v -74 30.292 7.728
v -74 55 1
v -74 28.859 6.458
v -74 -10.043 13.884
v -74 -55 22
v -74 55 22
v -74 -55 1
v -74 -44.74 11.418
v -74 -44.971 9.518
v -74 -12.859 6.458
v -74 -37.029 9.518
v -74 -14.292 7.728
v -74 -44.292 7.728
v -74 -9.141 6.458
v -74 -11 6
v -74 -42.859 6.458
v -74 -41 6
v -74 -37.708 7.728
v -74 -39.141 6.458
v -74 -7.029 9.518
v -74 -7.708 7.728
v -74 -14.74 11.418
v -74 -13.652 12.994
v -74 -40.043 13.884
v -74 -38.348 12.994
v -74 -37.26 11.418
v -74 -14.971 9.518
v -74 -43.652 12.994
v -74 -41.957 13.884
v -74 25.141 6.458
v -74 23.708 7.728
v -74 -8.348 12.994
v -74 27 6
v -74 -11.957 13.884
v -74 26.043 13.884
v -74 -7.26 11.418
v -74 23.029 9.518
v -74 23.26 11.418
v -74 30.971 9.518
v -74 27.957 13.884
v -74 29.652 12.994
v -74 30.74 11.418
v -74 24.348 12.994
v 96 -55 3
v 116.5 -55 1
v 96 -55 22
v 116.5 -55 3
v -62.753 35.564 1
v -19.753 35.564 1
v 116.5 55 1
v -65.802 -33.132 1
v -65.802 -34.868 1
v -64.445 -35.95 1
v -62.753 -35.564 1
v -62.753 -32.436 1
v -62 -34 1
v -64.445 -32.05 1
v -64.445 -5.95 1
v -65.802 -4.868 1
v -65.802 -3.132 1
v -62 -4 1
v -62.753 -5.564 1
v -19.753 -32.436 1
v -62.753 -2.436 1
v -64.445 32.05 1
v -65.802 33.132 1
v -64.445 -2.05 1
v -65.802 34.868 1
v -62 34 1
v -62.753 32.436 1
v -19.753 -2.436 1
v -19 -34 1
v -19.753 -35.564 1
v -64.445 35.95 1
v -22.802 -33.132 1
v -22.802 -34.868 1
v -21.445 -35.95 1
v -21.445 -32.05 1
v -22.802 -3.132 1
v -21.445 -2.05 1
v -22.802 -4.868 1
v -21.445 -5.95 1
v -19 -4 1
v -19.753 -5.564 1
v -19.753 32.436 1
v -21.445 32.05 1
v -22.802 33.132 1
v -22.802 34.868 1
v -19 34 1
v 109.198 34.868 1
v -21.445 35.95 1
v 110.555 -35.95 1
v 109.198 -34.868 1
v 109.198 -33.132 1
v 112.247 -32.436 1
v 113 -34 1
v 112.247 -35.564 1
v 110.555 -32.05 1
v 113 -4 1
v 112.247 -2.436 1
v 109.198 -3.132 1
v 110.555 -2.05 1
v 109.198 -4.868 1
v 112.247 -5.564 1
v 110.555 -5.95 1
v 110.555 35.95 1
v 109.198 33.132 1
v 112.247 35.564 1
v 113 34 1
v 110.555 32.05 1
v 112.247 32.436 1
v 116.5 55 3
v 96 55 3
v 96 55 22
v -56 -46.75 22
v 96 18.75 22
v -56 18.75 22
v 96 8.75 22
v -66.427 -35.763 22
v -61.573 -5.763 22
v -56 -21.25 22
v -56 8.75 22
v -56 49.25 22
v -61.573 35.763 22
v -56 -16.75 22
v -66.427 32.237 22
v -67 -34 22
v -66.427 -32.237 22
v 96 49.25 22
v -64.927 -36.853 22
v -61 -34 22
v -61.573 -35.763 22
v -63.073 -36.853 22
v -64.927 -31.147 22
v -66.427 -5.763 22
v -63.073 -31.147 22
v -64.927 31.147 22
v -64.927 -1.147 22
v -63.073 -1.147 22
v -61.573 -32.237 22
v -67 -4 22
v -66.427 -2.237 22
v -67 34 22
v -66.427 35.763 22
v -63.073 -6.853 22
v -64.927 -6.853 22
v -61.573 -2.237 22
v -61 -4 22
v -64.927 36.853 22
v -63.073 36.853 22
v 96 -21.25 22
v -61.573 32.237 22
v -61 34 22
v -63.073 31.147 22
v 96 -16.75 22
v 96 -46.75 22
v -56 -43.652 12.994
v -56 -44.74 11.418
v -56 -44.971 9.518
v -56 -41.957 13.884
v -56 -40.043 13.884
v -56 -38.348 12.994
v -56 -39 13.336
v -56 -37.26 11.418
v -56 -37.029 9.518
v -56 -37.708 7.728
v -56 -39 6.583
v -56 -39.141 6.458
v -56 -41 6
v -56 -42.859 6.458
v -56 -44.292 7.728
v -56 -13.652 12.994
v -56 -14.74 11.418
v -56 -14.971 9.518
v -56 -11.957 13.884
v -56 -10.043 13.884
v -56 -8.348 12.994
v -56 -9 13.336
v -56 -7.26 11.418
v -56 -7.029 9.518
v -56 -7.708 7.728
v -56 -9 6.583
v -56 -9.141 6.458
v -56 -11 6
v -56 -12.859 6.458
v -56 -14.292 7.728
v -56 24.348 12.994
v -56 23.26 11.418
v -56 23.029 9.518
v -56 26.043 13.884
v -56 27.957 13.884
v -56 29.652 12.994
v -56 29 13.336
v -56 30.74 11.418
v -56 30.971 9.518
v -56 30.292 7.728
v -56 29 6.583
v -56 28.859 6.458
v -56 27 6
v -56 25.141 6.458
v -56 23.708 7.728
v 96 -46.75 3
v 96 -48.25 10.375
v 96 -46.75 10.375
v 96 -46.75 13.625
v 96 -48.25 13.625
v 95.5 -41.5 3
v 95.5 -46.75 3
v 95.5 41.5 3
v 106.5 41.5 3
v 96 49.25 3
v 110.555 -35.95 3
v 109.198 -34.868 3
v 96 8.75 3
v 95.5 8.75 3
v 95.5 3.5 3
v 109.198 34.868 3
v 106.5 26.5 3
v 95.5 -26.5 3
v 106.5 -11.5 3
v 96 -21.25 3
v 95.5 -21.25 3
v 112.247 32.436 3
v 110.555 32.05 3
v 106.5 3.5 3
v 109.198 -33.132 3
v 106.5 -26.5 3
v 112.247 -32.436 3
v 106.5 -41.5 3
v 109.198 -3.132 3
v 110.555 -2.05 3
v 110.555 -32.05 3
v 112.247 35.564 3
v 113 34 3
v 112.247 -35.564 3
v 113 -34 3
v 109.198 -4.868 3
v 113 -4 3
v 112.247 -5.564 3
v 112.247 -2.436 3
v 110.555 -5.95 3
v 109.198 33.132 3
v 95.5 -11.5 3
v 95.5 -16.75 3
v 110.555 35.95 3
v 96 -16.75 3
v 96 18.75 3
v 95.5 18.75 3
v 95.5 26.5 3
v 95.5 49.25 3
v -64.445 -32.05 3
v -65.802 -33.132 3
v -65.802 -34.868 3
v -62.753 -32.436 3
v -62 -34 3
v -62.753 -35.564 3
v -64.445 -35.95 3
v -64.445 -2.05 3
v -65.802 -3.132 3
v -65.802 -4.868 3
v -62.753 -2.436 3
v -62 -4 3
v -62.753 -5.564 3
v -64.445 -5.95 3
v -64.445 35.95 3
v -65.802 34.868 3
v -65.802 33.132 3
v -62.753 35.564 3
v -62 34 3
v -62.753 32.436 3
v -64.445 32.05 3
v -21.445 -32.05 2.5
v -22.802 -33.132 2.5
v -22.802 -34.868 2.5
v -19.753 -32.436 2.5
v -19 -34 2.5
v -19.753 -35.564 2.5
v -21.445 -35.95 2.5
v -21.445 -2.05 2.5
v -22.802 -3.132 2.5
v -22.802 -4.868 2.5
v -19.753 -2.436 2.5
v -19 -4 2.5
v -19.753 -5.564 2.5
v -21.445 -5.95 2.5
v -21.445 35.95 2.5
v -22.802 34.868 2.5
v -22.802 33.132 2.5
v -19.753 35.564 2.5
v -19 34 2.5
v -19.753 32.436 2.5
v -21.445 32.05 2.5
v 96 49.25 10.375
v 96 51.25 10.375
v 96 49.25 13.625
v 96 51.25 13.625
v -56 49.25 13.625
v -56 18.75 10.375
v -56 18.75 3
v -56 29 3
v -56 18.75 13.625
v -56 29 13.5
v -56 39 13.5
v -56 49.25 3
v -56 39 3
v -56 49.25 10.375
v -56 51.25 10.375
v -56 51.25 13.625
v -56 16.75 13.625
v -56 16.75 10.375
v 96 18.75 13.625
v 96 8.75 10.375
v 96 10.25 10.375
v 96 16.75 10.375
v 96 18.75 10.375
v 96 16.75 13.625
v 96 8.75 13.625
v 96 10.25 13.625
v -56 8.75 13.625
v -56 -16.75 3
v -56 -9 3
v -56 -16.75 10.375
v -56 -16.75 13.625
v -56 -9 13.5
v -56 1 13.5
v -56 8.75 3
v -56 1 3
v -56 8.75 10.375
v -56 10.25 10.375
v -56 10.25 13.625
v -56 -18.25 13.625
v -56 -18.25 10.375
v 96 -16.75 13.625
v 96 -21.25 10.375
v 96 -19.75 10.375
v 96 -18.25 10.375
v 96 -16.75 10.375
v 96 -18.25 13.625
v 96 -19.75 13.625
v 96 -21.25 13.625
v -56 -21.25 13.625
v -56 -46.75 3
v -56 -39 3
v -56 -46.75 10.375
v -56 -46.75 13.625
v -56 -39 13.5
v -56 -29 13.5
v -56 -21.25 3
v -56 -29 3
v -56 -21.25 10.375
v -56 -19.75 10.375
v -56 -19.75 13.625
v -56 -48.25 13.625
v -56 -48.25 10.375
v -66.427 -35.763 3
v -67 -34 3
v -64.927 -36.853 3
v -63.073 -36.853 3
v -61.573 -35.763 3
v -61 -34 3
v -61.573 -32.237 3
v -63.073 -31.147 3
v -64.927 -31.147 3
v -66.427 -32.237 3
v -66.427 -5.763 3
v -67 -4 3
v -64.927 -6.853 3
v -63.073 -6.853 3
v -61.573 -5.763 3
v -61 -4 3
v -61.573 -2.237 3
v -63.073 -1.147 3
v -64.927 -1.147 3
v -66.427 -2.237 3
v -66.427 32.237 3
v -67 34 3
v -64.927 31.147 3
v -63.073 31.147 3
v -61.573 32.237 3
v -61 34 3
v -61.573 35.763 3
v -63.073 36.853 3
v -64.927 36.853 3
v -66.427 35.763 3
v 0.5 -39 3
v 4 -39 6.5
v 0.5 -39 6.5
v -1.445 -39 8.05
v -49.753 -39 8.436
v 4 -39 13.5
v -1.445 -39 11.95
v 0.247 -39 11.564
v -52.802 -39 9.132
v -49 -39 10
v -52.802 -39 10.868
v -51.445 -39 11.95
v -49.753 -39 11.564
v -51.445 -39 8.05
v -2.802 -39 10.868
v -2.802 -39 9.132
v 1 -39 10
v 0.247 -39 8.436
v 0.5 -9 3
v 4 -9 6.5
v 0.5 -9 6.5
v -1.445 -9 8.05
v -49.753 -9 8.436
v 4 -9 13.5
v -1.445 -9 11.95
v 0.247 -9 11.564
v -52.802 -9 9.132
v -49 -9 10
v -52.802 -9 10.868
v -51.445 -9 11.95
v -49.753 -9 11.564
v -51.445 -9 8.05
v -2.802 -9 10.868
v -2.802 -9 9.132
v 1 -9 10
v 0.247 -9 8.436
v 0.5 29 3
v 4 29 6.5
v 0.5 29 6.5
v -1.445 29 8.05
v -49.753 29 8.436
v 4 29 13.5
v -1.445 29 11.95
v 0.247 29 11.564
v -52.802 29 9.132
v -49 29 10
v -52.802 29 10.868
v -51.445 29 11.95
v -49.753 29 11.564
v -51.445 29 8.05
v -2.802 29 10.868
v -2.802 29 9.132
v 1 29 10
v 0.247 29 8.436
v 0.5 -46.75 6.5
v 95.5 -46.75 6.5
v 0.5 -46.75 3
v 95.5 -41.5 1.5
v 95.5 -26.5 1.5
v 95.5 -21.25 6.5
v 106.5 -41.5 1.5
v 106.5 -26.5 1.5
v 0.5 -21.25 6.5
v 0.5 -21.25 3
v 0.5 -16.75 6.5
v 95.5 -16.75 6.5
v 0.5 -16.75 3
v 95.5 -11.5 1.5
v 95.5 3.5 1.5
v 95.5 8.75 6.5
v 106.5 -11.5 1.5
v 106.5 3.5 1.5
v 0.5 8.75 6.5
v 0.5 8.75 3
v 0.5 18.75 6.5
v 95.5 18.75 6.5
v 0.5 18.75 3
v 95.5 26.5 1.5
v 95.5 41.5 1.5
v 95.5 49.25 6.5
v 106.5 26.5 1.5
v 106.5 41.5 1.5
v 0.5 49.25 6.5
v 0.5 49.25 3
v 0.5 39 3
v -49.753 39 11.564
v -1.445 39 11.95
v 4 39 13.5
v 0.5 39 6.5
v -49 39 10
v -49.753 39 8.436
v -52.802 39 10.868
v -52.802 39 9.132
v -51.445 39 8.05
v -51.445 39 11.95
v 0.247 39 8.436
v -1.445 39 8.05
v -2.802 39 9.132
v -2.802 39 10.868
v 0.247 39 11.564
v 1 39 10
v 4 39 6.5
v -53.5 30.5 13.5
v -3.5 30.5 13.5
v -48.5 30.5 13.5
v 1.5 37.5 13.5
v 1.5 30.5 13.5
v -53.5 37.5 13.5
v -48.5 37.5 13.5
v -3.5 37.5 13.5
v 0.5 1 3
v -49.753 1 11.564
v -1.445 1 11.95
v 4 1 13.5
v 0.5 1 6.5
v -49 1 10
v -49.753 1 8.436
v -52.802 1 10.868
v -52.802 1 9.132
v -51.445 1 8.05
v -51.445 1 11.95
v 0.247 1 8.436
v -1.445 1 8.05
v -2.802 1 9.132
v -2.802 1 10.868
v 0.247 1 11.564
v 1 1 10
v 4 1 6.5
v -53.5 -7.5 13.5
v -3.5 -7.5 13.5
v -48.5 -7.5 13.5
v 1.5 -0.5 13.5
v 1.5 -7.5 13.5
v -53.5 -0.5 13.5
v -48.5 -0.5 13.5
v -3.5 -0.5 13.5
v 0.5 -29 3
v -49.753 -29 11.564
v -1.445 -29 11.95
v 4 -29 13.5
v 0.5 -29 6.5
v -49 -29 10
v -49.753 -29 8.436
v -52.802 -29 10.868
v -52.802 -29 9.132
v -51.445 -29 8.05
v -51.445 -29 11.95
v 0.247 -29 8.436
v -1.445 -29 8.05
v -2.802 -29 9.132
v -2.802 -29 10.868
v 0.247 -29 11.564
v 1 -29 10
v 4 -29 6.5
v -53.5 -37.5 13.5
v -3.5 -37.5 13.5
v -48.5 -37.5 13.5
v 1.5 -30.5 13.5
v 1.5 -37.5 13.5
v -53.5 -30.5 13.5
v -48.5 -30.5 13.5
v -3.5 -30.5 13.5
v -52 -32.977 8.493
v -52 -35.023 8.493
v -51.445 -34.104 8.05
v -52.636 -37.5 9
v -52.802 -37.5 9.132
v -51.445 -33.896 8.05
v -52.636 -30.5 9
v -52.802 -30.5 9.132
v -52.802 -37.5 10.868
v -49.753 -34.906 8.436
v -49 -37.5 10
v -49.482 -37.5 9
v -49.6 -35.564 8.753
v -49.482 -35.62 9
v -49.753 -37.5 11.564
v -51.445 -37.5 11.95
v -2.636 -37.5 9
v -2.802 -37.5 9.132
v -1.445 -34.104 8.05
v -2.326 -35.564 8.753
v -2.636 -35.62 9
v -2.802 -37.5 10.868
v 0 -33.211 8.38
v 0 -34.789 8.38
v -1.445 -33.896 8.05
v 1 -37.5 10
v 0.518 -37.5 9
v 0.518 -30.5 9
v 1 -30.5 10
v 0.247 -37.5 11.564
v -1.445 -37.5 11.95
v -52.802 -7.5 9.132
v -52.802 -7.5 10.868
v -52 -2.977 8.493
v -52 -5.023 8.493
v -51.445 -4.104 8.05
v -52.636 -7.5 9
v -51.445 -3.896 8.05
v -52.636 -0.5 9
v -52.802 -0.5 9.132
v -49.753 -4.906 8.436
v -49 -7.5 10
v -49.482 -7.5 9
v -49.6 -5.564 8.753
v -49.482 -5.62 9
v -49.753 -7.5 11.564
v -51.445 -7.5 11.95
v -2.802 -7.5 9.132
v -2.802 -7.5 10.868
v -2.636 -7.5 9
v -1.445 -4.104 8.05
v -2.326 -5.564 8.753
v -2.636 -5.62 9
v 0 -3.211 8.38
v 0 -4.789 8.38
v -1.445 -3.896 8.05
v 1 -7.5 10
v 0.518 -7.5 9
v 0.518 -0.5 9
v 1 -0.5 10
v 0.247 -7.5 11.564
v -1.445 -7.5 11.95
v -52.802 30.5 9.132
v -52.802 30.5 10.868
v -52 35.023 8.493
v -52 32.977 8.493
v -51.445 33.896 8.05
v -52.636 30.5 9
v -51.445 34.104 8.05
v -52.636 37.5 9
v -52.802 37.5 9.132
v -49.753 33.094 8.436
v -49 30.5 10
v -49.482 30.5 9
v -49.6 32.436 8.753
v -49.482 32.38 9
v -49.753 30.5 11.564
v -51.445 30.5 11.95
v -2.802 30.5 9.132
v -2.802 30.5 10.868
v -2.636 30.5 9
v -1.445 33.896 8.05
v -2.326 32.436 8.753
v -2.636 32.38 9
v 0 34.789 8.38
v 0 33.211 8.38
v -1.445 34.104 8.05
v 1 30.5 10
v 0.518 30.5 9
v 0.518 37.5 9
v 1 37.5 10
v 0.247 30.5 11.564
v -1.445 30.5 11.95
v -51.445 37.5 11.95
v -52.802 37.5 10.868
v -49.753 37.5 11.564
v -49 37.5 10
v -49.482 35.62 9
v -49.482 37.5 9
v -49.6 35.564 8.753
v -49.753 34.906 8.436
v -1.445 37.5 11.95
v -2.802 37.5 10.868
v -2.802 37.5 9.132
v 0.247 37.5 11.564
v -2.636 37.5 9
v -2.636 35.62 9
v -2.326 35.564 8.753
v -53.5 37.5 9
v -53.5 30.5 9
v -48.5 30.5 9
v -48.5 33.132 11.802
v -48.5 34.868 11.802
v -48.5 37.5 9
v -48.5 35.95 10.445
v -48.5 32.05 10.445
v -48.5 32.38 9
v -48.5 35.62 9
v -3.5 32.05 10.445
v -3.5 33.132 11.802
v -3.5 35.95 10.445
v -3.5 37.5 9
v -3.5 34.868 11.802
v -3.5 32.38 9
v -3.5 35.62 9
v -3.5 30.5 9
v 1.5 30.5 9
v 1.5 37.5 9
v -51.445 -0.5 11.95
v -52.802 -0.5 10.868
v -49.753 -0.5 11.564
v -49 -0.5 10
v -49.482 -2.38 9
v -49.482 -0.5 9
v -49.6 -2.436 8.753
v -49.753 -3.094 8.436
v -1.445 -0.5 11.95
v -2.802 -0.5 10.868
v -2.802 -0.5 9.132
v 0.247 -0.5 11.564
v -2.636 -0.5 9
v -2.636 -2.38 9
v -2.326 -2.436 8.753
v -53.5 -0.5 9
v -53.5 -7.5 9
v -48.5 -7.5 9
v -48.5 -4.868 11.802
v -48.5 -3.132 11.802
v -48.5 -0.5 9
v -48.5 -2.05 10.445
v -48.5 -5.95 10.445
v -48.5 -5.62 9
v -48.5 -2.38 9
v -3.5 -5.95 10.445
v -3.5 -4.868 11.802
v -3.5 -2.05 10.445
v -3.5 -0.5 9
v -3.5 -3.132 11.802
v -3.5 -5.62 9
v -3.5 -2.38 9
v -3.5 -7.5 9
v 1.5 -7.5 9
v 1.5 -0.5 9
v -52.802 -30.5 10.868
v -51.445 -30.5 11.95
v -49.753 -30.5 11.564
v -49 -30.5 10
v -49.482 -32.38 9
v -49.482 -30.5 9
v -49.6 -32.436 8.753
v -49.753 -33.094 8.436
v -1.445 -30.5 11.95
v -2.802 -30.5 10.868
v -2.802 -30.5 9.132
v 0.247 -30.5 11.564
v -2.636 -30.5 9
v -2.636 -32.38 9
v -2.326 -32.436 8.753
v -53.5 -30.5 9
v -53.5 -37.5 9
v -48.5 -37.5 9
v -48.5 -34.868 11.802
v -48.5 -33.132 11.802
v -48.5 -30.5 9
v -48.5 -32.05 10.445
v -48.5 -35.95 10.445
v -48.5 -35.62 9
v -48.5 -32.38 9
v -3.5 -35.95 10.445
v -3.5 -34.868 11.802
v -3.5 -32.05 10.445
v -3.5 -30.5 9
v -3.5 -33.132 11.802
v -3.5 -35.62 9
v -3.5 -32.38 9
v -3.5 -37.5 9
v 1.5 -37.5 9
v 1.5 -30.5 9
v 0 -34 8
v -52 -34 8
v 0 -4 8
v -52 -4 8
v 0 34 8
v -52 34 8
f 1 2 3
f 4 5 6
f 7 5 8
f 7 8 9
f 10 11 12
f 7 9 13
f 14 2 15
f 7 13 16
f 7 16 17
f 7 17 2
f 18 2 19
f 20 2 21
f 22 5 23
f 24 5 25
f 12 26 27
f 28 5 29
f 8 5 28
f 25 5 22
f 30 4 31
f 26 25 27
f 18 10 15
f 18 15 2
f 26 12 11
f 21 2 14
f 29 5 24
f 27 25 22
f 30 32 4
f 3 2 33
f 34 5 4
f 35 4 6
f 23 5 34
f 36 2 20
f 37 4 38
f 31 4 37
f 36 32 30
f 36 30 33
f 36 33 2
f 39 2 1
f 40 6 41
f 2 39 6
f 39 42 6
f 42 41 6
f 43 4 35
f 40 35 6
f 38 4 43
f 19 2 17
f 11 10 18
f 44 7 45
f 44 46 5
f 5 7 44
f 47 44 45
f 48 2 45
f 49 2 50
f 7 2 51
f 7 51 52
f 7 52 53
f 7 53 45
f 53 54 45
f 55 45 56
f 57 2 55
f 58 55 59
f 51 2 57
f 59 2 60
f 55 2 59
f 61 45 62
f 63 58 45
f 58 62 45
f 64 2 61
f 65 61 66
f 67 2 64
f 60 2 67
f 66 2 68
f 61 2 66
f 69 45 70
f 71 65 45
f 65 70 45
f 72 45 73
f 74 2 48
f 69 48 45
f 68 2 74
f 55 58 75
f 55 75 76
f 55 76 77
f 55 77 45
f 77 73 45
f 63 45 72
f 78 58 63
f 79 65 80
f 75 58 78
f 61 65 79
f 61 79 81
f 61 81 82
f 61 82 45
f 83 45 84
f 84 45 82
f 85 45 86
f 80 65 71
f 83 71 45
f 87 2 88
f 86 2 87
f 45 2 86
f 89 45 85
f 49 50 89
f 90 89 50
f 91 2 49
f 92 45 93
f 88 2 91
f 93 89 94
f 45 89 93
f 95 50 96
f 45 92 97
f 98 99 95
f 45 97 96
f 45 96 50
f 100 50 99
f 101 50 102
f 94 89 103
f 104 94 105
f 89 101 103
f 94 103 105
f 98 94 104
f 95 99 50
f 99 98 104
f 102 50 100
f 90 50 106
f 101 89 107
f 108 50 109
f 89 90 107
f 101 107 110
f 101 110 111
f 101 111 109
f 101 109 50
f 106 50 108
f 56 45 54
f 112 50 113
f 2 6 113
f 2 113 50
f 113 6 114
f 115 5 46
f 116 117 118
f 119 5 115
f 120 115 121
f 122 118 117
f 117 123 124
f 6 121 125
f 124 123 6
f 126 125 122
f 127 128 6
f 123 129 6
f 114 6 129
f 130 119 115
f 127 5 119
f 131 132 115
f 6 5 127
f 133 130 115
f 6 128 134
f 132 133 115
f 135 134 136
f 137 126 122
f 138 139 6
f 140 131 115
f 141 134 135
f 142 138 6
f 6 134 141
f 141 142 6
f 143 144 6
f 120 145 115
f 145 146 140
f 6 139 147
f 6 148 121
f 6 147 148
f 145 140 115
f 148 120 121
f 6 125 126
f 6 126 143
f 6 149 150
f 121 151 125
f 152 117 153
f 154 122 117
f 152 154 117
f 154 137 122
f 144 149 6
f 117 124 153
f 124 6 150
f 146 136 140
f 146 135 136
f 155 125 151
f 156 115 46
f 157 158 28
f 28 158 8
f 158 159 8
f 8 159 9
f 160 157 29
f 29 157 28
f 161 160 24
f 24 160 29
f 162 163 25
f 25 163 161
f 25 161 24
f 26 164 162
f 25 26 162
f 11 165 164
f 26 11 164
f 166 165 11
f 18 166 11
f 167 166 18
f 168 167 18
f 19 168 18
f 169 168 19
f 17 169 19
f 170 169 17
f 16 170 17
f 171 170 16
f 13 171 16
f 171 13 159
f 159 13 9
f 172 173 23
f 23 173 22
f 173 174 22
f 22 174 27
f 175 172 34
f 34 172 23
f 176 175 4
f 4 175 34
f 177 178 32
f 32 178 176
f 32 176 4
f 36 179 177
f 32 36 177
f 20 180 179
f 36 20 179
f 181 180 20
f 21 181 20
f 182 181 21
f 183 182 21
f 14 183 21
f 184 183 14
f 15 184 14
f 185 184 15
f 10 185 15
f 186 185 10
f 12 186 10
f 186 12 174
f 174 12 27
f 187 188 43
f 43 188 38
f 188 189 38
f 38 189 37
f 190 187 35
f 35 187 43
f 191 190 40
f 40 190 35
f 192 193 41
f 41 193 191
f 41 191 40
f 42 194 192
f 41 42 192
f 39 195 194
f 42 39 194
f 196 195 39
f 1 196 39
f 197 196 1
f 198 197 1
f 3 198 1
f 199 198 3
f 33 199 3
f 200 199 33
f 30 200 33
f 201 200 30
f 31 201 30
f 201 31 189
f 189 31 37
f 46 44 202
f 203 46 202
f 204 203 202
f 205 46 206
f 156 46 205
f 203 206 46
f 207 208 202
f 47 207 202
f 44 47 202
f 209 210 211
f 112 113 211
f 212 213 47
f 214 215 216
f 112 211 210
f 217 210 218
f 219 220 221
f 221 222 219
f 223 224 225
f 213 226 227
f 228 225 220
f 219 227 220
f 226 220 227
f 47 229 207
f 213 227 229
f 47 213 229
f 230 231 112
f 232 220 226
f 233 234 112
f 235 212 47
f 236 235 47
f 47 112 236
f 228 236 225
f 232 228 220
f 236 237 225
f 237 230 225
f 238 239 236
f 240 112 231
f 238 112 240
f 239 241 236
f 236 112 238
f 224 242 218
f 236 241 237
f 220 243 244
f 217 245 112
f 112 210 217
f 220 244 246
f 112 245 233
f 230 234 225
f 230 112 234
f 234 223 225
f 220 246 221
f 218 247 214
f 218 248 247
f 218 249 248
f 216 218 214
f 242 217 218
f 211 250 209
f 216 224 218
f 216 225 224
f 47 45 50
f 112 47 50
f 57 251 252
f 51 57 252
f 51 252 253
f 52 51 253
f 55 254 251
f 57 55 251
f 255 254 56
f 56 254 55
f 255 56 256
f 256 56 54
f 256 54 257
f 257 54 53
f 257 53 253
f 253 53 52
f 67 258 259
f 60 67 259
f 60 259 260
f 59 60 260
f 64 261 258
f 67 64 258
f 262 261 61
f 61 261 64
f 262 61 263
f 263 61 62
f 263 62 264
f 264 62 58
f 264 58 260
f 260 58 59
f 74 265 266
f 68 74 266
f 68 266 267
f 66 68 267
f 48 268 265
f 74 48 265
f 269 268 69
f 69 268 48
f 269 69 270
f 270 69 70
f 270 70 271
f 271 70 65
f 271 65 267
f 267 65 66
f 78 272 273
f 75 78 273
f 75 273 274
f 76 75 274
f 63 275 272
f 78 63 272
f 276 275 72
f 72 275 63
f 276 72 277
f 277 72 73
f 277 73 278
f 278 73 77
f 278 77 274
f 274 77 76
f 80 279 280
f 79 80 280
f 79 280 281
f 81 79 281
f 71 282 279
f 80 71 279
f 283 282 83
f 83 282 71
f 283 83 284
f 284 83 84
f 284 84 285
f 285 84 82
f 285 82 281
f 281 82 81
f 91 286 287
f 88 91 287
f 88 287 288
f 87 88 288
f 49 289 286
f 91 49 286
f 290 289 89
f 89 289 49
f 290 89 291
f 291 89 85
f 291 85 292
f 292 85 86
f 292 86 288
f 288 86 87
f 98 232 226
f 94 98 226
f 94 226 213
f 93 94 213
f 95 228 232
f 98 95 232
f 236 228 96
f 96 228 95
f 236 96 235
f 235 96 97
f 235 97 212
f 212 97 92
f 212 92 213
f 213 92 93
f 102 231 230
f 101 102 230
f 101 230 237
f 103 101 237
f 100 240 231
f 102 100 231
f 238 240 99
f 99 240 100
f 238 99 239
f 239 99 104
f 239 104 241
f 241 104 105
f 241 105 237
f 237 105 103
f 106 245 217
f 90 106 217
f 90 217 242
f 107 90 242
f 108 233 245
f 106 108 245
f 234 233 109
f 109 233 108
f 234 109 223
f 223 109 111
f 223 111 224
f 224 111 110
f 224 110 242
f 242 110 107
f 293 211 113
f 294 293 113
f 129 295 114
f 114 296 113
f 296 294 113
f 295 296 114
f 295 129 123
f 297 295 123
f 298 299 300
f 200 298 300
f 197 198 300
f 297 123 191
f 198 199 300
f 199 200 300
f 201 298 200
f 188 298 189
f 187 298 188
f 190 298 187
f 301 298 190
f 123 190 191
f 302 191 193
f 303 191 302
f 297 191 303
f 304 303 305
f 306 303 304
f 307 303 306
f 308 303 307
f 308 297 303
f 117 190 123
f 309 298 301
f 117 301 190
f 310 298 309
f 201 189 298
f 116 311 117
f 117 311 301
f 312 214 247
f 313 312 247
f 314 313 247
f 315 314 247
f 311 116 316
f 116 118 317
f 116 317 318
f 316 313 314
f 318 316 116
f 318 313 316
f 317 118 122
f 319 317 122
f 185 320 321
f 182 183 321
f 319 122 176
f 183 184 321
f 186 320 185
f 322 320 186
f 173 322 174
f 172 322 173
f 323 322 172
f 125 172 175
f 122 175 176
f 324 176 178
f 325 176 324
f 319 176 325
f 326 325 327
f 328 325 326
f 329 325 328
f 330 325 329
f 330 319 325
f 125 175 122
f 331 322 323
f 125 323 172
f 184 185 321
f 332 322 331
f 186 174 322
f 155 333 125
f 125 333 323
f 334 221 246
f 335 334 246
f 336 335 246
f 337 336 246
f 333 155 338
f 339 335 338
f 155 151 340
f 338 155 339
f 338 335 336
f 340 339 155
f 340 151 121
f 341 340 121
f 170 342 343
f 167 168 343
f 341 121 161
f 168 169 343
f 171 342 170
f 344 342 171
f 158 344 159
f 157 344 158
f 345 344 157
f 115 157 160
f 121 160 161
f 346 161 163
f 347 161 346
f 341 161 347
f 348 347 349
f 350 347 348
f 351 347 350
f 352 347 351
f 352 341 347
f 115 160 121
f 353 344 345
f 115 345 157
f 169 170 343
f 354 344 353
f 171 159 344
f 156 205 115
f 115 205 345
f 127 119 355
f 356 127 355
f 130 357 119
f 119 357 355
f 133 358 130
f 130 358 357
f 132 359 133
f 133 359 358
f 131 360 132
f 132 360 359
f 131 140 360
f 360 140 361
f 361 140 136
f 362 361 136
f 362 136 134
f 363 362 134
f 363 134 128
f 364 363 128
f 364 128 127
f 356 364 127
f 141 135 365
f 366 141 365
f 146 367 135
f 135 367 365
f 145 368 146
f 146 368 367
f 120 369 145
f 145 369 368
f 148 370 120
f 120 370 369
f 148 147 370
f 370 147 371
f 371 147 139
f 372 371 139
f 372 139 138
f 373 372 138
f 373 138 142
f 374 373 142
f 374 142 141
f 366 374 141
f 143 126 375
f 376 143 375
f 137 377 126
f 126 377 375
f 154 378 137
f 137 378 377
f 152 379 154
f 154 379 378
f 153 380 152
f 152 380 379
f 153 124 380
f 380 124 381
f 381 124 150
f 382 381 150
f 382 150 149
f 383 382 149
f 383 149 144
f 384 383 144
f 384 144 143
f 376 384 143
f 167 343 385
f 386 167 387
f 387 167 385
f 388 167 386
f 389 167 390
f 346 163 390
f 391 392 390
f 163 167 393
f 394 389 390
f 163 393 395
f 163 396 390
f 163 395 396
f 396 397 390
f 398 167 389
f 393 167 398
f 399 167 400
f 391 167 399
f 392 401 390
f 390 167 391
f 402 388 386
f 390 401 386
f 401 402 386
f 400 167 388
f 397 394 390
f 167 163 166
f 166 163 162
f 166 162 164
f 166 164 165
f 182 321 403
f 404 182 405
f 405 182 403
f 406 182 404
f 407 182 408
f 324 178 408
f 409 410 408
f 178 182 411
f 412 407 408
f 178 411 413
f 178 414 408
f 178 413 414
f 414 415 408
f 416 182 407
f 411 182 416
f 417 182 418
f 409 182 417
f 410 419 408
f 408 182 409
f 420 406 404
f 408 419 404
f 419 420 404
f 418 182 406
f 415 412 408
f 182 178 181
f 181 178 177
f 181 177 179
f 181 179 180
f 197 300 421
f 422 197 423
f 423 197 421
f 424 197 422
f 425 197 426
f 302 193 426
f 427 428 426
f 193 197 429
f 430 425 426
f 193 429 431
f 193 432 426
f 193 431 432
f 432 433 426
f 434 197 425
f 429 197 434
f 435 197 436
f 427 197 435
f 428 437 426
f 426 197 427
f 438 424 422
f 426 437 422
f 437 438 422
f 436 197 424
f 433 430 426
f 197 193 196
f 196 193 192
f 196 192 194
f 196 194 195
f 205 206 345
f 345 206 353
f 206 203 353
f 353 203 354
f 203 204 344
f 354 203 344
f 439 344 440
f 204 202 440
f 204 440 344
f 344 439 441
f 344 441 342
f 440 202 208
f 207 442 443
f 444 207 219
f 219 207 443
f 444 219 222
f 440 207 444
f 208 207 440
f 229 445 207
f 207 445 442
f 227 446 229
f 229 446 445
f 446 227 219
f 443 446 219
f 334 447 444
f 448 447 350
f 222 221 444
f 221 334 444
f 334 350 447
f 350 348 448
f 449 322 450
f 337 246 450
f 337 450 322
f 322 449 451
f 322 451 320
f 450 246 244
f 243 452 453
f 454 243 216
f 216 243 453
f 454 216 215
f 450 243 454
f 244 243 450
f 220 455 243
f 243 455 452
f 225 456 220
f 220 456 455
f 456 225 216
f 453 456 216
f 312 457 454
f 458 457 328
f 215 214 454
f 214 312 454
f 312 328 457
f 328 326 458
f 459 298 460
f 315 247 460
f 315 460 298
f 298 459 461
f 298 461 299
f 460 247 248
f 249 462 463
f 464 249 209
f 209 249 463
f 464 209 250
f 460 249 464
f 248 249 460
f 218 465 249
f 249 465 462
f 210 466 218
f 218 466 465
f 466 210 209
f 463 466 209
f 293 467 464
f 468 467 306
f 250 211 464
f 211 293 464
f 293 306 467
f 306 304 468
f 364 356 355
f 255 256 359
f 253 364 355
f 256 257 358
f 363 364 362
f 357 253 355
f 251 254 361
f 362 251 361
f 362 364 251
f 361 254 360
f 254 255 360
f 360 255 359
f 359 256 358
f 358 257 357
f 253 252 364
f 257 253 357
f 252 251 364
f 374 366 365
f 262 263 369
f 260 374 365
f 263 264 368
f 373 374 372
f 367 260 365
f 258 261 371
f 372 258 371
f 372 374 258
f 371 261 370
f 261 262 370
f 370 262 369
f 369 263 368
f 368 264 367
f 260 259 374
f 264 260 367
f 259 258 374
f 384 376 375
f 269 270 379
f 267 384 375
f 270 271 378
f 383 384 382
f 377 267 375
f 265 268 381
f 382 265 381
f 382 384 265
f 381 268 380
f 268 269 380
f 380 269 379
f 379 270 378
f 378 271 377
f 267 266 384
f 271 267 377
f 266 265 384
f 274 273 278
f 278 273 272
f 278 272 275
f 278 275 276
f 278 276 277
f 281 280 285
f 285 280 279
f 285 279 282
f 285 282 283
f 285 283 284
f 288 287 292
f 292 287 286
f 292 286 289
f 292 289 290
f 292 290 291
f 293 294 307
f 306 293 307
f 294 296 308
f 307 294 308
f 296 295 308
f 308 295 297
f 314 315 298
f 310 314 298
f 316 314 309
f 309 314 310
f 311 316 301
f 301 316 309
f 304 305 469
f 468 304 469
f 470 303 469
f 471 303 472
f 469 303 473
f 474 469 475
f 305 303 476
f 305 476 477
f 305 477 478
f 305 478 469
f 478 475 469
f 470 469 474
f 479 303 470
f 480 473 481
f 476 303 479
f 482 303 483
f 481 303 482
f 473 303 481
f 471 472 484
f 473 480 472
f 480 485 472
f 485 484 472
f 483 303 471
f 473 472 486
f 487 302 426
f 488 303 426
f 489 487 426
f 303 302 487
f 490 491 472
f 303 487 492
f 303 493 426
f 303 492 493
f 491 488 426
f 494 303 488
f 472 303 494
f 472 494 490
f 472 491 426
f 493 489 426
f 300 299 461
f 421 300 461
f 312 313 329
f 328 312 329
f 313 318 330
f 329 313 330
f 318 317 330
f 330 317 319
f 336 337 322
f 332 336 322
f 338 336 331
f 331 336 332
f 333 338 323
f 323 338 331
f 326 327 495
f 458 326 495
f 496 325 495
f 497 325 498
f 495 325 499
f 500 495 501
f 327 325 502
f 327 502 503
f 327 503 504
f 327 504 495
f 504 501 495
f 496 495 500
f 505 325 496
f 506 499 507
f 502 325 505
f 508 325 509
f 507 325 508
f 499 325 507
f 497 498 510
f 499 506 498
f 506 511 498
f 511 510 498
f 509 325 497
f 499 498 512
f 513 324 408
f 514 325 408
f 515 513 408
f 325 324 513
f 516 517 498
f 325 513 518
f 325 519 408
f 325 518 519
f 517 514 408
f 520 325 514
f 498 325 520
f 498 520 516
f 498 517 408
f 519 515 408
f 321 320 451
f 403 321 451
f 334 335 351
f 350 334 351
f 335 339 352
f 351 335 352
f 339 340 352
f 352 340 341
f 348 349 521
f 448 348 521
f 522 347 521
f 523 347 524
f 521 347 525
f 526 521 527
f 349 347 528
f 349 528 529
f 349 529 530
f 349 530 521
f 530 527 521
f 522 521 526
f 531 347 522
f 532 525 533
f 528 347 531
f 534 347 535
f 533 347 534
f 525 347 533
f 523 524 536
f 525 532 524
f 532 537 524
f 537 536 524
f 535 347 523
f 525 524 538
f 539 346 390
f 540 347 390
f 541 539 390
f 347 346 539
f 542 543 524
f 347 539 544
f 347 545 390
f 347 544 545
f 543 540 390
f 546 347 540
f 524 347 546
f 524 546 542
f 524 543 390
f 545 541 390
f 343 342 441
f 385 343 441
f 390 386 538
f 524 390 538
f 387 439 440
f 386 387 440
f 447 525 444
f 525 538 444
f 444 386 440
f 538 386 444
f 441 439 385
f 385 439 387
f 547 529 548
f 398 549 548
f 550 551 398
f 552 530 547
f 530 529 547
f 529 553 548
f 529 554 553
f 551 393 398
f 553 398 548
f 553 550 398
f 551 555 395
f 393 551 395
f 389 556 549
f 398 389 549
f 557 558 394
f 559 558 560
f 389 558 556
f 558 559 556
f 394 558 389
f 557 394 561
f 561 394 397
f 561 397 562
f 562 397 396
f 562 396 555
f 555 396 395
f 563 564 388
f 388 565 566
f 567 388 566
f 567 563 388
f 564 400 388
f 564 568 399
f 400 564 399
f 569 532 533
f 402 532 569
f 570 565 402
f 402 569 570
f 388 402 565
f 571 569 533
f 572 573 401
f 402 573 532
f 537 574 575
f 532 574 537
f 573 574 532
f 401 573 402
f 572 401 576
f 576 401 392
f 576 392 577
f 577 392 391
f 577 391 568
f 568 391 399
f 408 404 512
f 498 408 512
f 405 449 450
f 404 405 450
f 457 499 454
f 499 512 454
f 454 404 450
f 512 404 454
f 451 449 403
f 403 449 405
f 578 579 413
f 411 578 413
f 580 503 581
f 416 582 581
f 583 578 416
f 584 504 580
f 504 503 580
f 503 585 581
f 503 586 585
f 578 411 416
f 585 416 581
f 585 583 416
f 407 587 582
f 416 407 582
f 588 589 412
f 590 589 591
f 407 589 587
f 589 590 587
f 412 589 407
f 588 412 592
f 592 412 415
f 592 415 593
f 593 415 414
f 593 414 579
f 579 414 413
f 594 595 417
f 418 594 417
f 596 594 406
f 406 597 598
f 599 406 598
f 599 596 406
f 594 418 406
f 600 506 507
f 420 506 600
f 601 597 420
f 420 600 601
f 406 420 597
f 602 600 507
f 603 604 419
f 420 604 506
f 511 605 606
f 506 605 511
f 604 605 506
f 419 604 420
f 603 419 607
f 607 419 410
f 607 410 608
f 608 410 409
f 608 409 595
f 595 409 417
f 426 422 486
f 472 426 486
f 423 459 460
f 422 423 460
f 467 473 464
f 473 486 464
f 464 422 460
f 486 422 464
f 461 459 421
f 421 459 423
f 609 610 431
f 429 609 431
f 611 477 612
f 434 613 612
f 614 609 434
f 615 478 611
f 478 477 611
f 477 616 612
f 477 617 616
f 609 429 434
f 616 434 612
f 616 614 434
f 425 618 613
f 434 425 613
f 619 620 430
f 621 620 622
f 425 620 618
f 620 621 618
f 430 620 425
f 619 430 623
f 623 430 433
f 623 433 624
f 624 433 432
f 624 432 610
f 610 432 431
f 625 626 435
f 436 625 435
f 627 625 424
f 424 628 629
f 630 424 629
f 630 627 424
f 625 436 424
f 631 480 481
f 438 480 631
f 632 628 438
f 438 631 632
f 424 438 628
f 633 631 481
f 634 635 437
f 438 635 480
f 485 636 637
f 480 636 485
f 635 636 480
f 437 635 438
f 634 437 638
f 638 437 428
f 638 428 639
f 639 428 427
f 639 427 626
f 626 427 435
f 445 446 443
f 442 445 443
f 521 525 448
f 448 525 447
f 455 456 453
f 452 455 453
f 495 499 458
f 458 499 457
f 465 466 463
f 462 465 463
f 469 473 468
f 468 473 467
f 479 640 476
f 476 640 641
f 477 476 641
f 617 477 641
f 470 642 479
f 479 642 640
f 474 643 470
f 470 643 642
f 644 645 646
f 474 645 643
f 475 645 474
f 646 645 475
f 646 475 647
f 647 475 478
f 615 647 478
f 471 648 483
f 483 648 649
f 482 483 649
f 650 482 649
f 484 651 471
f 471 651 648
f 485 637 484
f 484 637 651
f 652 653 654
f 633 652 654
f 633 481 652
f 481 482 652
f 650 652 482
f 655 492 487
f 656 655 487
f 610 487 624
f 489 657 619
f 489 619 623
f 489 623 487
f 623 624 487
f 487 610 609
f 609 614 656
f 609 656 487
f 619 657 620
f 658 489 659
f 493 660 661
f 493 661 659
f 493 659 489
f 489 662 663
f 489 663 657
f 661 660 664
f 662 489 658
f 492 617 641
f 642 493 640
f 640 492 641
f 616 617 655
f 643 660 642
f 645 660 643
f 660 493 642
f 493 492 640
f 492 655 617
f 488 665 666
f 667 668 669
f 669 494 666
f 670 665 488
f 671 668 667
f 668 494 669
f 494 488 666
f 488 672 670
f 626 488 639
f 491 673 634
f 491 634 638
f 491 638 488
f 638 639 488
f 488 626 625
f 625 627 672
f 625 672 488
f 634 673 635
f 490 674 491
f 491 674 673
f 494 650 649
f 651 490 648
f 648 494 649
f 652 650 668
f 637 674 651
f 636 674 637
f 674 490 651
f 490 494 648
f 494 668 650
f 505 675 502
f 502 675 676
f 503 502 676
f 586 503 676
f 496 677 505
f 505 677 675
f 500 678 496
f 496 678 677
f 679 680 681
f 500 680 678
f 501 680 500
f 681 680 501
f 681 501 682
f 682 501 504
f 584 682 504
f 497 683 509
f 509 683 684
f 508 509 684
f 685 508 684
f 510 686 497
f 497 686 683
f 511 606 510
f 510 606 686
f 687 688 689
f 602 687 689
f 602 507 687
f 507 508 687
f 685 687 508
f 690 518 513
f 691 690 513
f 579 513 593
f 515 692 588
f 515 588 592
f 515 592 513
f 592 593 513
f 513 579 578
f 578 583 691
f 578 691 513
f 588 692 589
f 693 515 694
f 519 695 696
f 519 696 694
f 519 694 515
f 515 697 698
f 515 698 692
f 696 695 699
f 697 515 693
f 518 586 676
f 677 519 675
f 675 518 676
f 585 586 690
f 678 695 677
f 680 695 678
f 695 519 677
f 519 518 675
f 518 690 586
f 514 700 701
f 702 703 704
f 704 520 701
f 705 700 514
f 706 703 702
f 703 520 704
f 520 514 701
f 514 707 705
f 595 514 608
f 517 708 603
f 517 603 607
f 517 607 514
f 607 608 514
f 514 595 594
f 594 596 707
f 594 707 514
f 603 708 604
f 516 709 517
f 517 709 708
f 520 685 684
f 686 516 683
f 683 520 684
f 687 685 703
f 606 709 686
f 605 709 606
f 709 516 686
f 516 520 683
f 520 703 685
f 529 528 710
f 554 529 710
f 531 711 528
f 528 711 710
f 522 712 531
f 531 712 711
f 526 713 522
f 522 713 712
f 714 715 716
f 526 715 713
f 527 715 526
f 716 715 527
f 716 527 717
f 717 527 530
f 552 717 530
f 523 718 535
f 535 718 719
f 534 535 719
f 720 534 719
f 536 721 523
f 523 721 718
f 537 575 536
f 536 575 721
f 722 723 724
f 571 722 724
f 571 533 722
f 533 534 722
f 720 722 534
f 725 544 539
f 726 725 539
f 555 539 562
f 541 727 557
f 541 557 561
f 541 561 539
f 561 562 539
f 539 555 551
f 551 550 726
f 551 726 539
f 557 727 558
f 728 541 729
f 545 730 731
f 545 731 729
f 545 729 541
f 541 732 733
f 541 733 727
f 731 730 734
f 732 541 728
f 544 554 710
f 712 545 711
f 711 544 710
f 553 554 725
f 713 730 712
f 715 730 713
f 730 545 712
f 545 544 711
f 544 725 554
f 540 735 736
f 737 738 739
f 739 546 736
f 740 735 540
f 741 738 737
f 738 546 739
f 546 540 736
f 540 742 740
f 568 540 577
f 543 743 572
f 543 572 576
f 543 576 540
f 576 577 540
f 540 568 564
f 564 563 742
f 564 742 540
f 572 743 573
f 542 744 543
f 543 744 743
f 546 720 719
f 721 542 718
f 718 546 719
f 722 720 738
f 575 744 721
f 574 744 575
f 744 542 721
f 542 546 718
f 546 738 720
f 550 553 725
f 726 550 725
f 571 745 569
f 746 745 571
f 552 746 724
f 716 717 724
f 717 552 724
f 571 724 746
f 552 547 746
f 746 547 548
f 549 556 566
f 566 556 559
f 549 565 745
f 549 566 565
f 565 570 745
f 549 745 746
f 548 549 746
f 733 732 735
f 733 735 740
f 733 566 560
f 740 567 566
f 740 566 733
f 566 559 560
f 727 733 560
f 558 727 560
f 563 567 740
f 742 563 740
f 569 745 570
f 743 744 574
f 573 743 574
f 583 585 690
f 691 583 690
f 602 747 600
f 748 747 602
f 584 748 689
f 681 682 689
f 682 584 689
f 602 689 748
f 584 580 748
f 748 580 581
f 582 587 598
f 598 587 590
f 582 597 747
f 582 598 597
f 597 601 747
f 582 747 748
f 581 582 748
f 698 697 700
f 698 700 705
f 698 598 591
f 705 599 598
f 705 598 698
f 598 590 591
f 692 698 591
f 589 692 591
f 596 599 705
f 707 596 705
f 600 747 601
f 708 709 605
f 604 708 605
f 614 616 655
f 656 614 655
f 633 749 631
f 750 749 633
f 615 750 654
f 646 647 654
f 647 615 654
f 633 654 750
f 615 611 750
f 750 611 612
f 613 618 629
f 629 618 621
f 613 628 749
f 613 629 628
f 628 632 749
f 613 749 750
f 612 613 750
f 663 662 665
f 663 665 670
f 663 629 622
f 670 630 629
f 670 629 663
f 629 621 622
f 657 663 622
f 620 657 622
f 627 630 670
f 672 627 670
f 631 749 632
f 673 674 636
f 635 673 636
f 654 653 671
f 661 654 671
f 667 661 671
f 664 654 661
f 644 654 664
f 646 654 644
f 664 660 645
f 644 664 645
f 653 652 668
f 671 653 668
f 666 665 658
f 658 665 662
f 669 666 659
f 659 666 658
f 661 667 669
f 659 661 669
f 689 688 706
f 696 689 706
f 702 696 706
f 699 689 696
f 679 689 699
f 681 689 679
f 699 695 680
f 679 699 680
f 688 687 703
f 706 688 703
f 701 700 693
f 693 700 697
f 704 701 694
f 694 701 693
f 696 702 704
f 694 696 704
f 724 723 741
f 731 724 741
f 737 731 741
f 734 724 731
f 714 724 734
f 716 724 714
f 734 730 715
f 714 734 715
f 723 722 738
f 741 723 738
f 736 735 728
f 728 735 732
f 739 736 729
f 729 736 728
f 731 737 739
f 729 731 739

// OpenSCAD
// file: filterMount_screwHoles.scad
module upperScrewHoles(){
	//upperMiddleHalf
	translate([40,12,0]) cylinder(h=30,r=2,center=true);
	translate([-40,12,0]) cylinder(h=30,r=2,center=true);
	//upperHalf
	translate([35,-12,0]) cylinder(h=30,r=2,center=true);
	translate([-35,-12,0]) cylinder(h=30,r=2,center=true);
}

module lowerScrewHoles(){
	//lowerMiddleHalf
	translate([40,-12,0]) cylinder(h=30,r=2,center=true);
	translate([-40,-12,0]) cylinder(h=30,r=2,center=true);
	//bottomwHalf
	translate([35,12,0]) cylinder(h=30,r=2,center=true);
	translate([-35,12,0]) cylinder(h=30,r=2,center=true);
}

upperScrewHoles();
lowerScrewHoles();
// file: mechanical_slideStepper_mountingBracket_large.scad
module mechanical_slideStepper_mountingBracket_large(){
	difference(){
		//movedMainBlockHigherAndTallerToAccommodateScrewHoleHeightAdjustments
//		translate([0,0,70]){
		translate([0,0,70.5]){
//			color([1,1,0]) cube(size=[90,40,20],center=true);
			color([1,1,0]) cube(size=[90,40,21],center=true);
		}
		translate([0,0,73]){
			color([1,1,0]) cube(size=[95,35,20],center=true);
		}
		//mountingScrewHoles
//		translate([35,-9.5,73.5]){
		translate([35,-9.5,74]){
			rotate([90,0,0]){
				cylinder(r=4.5,h=25,center=true);
			}
		}
//		translate([35,9,73.5]){
		translate([35,9,74]){
			rotate([90,0,0]){
				cylinder(r=4.5,h=25,center=true);
			}
		}
//		translate([-35,-9,73.5]){
		translate([-35,-9,74]){
			rotate([90,0,0]){
				cylinder(r=4.5,h=25,center=true);
			}
		}
//		translate([-35,9,73.5]){
		translate([-35,9,74]){
			rotate([90,0,0]){
				cylinder(r=4.5,h=25,center=true);
			}
		}
	}
	//cornerPads
	difference(){
		translate([35.5,-16.5,72]){
			color([1,1,0]) cube(size=[19,3,21],center=true);
		}	
		translate([35,-9.5,73.5]){
			rotate([90,0,0]){
				cylinder(r=2.5,h=25,center=true);
			}
		}
	}
	difference(){
		translate([35.5,16.5,72]){
			color([1,1,0]) cube(size=[19,3,21],center=true);
		}	
		translate([35,9,73.5]){
			rotate([90,0,0]){
				cylinder(r=2.5,h=25,center=true);
			}
		}
	}

	difference(){
		translate([-35.5,-16.5,72]){
			color([1,1,0]) cube(size=[19,3,21],center=true);
		}	
		translate([-35,-9,73.5]){
			rotate([90,0,0]){
				cylinder(r=2.5,h=25,center=true);
			}
		}
	}
	difference(){
		translate([-35.5,16.5,72]){
			color([1,1,0]) cube(size=[19,3,21],center=true);
		}
		translate([-35,9,73.5]){
			rotate([90,0,0]){
				cylinder(r=2.5,h=25,center=true);
			}
		}
	}
	//slidesAdjustedToMakeAtighterFit
	translate([0,0,58]){
//		color([1,1,0])  cube(size=[90,28.5,4],center=true);
		color([1,1,0])  cube(size=[90,29.75,4],center=true);
	}
	//verticalGuides
//	translate([0,-13,51]){
	translate([0,-13.625,51]){
		color([1,1,0])  cube(size=[90,2.5,10],center=true);
	}
//	translate([-5,13,51]){
	translate([-5,13.625,51]){
		color([1,1,0])  cube(size=[80,2.5,10],center=true);
	}
	//slides
//	translate([0,-14,50]){
	translate([0,-15,50]){
		color([1,1,0])  cube(size=[90,2.5,2],center=true);
	}
//	translate([-5,14,50]){
	translate([-5,15,50]){
		color([1,1,0])  cube(size=[80,2.5,2],center=true);
	}


	
	translate([39,-6,54]) cube(size=[2,12,5],center=true);
	translate([39,-6,52.5]) cube(size=[4,12,2],center=true);
	translate([30,-7,52]) cube(size=[5,12,9],center=true);
}
translate([0,0,-70]){
	mechanical_slideStepper_mountingBracket_large();
}
// file: filterMount_retainingBracket.scad
use <write.scad>
use <filterMount_screwHoles.scad>

module filterMountRetainingBracket(){
	//leftBlock
	difference(){
		translate([40,0,1]){
			color([.7,.9,.1]) cube(size=[10,50,4],center=true);
		}
		//screwHoles
		translate([0,-22.5,0]){
			upperScrewHoles();
		}
		translate([0,22.5,0]){
			lowerScrewHoles();
		}
	}
	//rightBlock
	difference(){
		translate([-40,0,1]){
			color([.7,.9,.1]) cube(size=[10,50,4],center=true);
		}
		//screwHoles
		translate([0,-22.5,0]){
			upperScrewHoles();
		}
		translate([0,22.5,0]){
			lowerScrewHoles();
		}
	}
	//upperBlock
	translate([0,-40,1]){
		color([.7,.9,.1]) cube(size=[50,10,4],center=true);
	}
	//lowerBlock
	translate([0,40,1]){
		color([.7,.9,.1]) cube(size=[50,10,4],center=true);
	}
	//frame
	difference(){
		//mountBody
		color([.7,.9,.1]) cube(size=[90,90,2],center=true);
		//filterHole
		translate([0,0,0]) cylinder(h=7,r=40,$fn=100,center=true);
		//screwHoles
		translate([0,-22.5,0]){
			upperScrewHoles();
		}
		translate([0,22.5,0]){
			lowerScrewHoles();
		}
	}
	rotate(180,0,0){
		translate([0,40,2]){
			write("Meridian",h=4,t=3,center=true);
		}
		translate([0,-40,2]){
			write("Scientific",h=4,t=3,center=true);
		}
	}
}

//filterMountRetainingBracket
rotate([-90,0,0]) translate([0,0,0]){
	filterMountRetainingBracket();
}
// main file
/*
use <filterMount_interference_bottom.scad>
use <filterMount_interference_top.scad>
use <filterMount_retainingBracket.scad>
use <mechanical_slideStepper_mountingBracket_large.scad>
filterInPosition = -10;
filterInStorage = 50;

module laserBeam(length){
	rotate([0,90,0]) color([0,1,0]) cylinder(h=length,r=.5,$fn=50,center=true);	
}
translate([0,-85,70]) {
	laserBeam(200);
}
rotate([0,0,90]){
	translate([0,10,70]) {
		laserBeam(170);
	}
}
translate([-60,85,70]) {
	laserBeam(100);
}
//Interference_Filter
translate([filterInStorage,20.5,70]){
	rotate([90,180,0]){
		filterMountRetainingBracket();
	}
}
translate([filterInStorage,47.5,70]){
	rotate([90,180,180]){
		filterMountRetainingBracket();
	}
}
translate([filterInStorage,34,92.5]){
	rotate([90,180,0]){
		interferenceFilterMountTop();
	}
}
translate([filterInStorage,34,47.5]){
	rotate([90,180,0]){
		interferenceFilterMountBottom();
	}
}
translate([filterInStorage,34,-38]){
	mechanical_slideStepper_mountingBracket_large();
}
*/

module mechanical_slideStepper_frame(){
	difference(){
		translate([7.25,0,0]) {
			color([0.4,0.4,0.4]) cube(size=[190.5,110,2],center=true);
		}
		//motorWells
		translate([87,-34,1]){
			cube(size=[11,15,3],center=true);
		}
		translate([87,34,1]){
			cube(size=[11,15,3],center=true);
		}
		translate([87,-4,1]){
			cube(size=[11,15,3],center=true);
		}
		//screwHoles
		translate([97,34,0]){
			cylinder(r=2,h=10,center=true);
		}
		translate([97,-34,0]){
			cylinder(r=2,h=10,center=true);
		}
		translate([97,-4,0]){
			cylinder(r=2,h=10,center=true);
		}

		translate([-78,34,0]){
			cylinder(r=2,h=10,center=true);
		}
		translate([-78,-34,0]){
			cylinder(r=2,h=10,center=true);
		}
		translate([-78,-4,0]){
			cylinder(r=2,h=10,center=true);
		}

		translate([-35,34,0]){
			cylinder(r=2,h=10,center=true);
		}
		translate([-35,-34,0]){
			cylinder(r=2,h=10,center=true);
		}
		translate([-35,-4,0]){
			cylinder(r=2,h=10,center=true);
		}
	}
	//centerTrackPads
	translate([34,-4,2])color([0.4,0.4,0.5]) cube(size=[95,27,5],center=true);	
	translate([34,-34,2])color([0.4,0.4,0.5]) cube(size=[95,27,5],center=true);	
	translate([34,34,2])color([0.4,0.4,0.5]) cube(size=[95,37,5],center=true);	
	//photoSensorMounts
	difference(){
		translate([-40,-34,6]) color([0.7,0.8,0.3]) cube(size=[60,10,11],center=true);
		//#1sensorCutout
		translate([-65,-34,10]) cube(size=[5,7,6],center=true);
		//#1sensorThrough
		translate([-65,-34,8]) rotate([90,0,0])  cylinder(r=2,h=12,center=true);
		//#2sensorCutout
		translate([-15,-34,10]) cube(size=[5,7,6],center=true);
		//#2sensorThrough
		translate([-15,-34,8]) rotate([90,0,0])  cylinder(r=2,h=12,center=true);
		//sensorWireThrough
		translate([-40,-34,8]) rotate([0,90,0])  cylinder(r=2,h=52,center=true);
	}
	difference(){
		translate([-40,34,6]) color([0.7,0.8,0.3]) cube(size=[60,10,11],center=true);
		//#1sensorCutout
		translate([-65,34,10]) cube(size=[5,7,6],center=true);
		//#1sensorThrough
		translate([-65,34,8]) rotate([90,0,0])  cylinder(r=2,h=12,center=true);
		//#2sensorCutout
		translate([-15,34,10]) cube(size=[5,7,6],center=true);
		//#2sensorThrough
		translate([-15,34,8]) rotate([90,0,0])  cylinder(r=2,h=12,center=true);
		//sensorWireThrough
		translate([-40,34,8]) rotate([0,90,0])  cylinder(r=2,h=52,center=true);
	}
	difference(){
		translate([-40,-4,6]) color([0.7,0.8,0.3]) cube(size=[60,10,11],center=true);
		//#1sensorCutout
		translate([-65,-4,10]) cube(size=[5,7,6],center=true);
		//#1sensorThrough
		translate([-65,-4,8]) rotate([90,0,0])  cylinder(r=2,h=12,center=true);
		//#2sensorCutout
		translate([-15,-4,10]) cube(size=[5,7,6],center=true);
		//#2sensorThrough
		translate([-15,-4,8]) rotate([90,0,0])  cylinder(r=2,h=12,center=true);
		//sensorWireThrough
		translate([-40,-4,8]) rotate([0,90,0])  cylinder(r=2,h=52,center=true);
	}
}
module mechanical_slideStepper_slides(){
	translate([20,0,12]){
		difference(){
			//mainBody
			translate([7,0,0]){
				color([0.5,0.5,0.5]) cube(size=[170,110,20],center=true);	
			}
			//mainHoles
			translate([23,-34,0]) cube(size=[166,25.5,22],center=true);
			translate([23,-4,0]) cube(size=[166,25.5,22],center=true);
			translate([23,34,0]) cube(size=[166,30.5,22],center=true);
			//slides
			translate([23,-34,0]) cube(size=[166,28.5,3.25],center=true);			
			translate([23,-4,0]) cube(size=[166,28.5,3.25],center=true);
			translate([23,34,0]) cube(size=[166,34.5,3.25],center=true);

			//bigScrewHoles
			translate([-68,34,5]){
				cylinder(r=3,h=40,center=true);
			}
			translate([-68,-34,5]){
				cylinder(r=3,h=40,center=true);
			}
			translate([-68,-4,5]){
				cylinder(r=3,h=40,center=true);
			}
			translate([-68,-41,-2]) rotate([0,90,0])  cylinder(r=4,h=22,center=true);
			translate([-68,27,-2]) rotate([0,90,0])  cylinder(r=4,h=22,center=true);
			translate([-68,-11,-2]) rotate([0,90,0])  cylinder(r=4,h=22,center=true);
		}
	}
}

module mechanical_lensCassette(){
	translate([14,0,2]){
		mechanical_slideStepper_frame();
	}
	translate([-16,0,0]){
		mechanical_slideStepper_slides();
	}
}
mechanical_lensCassette();
